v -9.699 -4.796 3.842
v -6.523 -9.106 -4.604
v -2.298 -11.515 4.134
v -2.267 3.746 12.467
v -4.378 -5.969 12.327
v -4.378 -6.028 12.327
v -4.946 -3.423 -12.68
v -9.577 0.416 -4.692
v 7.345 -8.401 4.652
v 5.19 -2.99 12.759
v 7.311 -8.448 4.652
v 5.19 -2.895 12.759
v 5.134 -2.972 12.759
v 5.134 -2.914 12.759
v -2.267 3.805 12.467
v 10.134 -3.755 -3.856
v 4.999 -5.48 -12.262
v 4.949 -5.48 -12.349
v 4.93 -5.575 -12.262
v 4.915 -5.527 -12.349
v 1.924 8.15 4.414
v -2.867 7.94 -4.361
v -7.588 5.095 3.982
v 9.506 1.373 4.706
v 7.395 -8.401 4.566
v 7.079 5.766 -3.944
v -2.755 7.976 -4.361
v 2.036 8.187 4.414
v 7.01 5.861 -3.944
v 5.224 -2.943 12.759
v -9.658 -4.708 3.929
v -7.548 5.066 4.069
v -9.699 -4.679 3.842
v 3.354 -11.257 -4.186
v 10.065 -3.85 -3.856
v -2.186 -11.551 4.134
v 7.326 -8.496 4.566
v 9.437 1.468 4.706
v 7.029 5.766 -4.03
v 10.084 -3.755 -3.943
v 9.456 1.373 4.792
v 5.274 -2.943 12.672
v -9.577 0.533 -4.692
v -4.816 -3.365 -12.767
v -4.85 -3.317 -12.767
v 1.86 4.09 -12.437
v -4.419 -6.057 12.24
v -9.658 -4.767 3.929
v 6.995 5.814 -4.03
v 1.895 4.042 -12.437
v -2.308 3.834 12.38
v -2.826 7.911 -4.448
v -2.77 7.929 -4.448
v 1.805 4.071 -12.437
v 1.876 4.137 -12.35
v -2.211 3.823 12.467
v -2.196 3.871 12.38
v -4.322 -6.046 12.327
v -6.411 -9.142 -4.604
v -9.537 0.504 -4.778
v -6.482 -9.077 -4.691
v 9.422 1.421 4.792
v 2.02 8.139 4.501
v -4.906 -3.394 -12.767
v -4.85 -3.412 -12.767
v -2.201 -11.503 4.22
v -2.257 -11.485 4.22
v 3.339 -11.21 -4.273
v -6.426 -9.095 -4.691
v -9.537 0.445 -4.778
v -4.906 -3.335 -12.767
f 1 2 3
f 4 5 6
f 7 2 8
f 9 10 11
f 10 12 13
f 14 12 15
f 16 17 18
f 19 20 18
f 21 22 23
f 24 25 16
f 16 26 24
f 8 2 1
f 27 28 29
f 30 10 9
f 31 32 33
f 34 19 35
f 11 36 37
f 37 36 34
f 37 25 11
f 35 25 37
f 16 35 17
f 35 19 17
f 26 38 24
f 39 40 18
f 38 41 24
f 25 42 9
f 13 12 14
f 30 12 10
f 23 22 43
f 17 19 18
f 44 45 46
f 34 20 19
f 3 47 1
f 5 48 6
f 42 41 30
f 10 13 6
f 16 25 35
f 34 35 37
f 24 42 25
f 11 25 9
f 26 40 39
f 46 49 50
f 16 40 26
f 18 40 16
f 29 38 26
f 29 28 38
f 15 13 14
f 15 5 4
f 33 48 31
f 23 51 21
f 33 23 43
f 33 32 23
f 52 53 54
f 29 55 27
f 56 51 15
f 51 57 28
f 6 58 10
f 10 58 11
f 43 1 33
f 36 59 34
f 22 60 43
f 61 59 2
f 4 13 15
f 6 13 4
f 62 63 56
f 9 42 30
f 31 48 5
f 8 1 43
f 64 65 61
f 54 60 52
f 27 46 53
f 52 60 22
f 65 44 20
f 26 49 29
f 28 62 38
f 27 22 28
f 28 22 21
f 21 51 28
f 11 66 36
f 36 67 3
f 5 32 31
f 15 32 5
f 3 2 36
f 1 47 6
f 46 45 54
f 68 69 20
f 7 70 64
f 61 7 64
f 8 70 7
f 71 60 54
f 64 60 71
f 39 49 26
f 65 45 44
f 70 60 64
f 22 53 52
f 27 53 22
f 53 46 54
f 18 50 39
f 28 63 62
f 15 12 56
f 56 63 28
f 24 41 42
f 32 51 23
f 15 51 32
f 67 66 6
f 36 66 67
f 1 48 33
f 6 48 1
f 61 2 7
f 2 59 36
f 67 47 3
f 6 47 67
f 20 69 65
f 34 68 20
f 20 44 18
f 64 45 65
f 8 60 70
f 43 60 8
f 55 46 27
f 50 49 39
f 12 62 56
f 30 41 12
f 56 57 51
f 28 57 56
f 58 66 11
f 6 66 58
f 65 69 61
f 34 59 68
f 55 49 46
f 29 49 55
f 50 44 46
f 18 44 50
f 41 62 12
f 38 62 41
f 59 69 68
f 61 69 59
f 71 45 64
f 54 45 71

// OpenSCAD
// Auto-generated OpenSCAD file

    inner_points = 10*[[-0.9496117063645658, 0.04744255494879848, -0.4691531418453987], [1.0033624630947084, -0.3755390051682693, -0.3856157656249948], [-0.2785657017526601, 0.7881225693198912, -0.43613229985679836], [-0.6441706262468343, -0.9047282394808283, -0.460405295723797], [0.697921382976977, 0.5766317892613573, -0.3943636117465964], [0.33231645848280283, -1.1162190195393622, -0.41863660761359506], [-0.7507105153515918, 0.5036271349789806, 0.39821871909793793], [-0.961792616925356, -0.4737407351799904, 0.3842046984000876], [0.9406147283349547, 0.13731435858522523, 0.47056420907030583], [0.7295326267611906, -0.8400535115737459, 0.4565501883724555], [0.2004931572785636, 0.8091546818615886, 0.44139847443304703], [-0.22167104586896497, -1.1455810584563535, 0.4133704330373464], [-0.4865502109048858, -0.3364700228427917, -1.2680180766347915], [0.48993687382475126, -0.5479608029013256, -1.2262493885245895], [0.18449579370701985, 0.40420999152830095, -1.2349972346461915], [-0.22268754129996676, 0.3775482624765989, 1.2380376619553881], [-0.43376964287373104, -0.5998196076823722, 1.2240236412575376], [0.5174340297564245, -0.29429206079976433, 1.2672033965926468]];

    outer_points = 10*[[-0.1619876991428545, 0.42727685980119834, 0.9870193373470707], [0.1201169529545242, 0.42727685980119834, -0.992984946806127], [0.7648573506247376, 0.4700858108095228, 0.6140238314292694], [-0.9477804228617573, 0.3844679087928739, 0.370012701188273], [0.9059096766734269, 0.4700858108095228, -0.37597831064732945], [-0.806728096813068, 0.3844679087928739, -0.6199894408883259], [0.3931764152464893, -0.40256110041281673, 0.930789755433826], [-0.5956154643002599, -0.45199261918957995, 0.7899098637039218], [0.6374862104885902, -0.40256110041281673, -0.7839442542448654], [-0.35130566905815896, -0.45199261918957995, -0.9248241459747696], [1.0097272526409142, -0.3778453410244351, 0.14386269645943234], [-0.967856506452584, -0.47670837857796156, -0.13789708700037592], [-0.4168583108991429, 1.228505635767035, 0.44565677877170834], [-0.27580598485045354, 1.228505635767035, -0.5443453633048905], [0.5099867388684493, 1.2713145867753595, 0.07266127285390714], [0.5145701595267401, -1.2180595267147616, 0.36490471803782565], [-0.47422172002000895, -1.2674910454915247, 0.2240248263079215], [0.14232911737441603, -1.2427752861031431, -0.5629022326664721]];

    // Convex hull for inner set (I)
    module inner_hull() {
        hull() {
            for (p = inner_points) {
                translate(p) sphere(r=0.1);
            }
        }
    }

    // Convex hull for outer set (O) minus inner hull (O \ I)
    module outer_minus_inner() {
        difference() {
            hull() {
                for (p = outer_points) {
                    translate(p) sphere(r=0.1);
                }
            }
            inner_hull(); // Subtract inner hull
        }
    }

    // Convex hull for outer set (O) minus all translated inner hulls
    module outer_minus_AllTranslationInner() {
        difference() {
            hull() {
                for (p = outer_points) {
                    translate(p) sphere(r=0.1);
                }
            }
            hull() {
                translate([0,0,50]) inner_hull();
                translate([0,0,-50]) inner_hull();
            }; // Subtract translated inner hulls
        }
    }

    // Difference between outer_minus_inner and outer_minus_AllTranslationInner
    module outer_minus_inner_diff() {
        difference() {
            // Outer minus inner
            difference() {
                hull() {
                    for (p = outer_points) {
                        translate(p) sphere(r=0.1);
                    }
                }
                inner_hull();
            }

            // Subtract Outer minus AllTranslationInner
            difference() {
                hull() {
                    for (p = outer_points) {
                        translate(p) sphere(r=0.1);
                    }
                }
                hull() {
                    translate([0,0,50]) inner_hull();
                    translate([0,0,-50]) inner_hull();
                };
            }
        }
    }

    // Rendering all with colors applied
    color([1, 0, 0, 0.5]) inner_hull(); // Transparent red
    
